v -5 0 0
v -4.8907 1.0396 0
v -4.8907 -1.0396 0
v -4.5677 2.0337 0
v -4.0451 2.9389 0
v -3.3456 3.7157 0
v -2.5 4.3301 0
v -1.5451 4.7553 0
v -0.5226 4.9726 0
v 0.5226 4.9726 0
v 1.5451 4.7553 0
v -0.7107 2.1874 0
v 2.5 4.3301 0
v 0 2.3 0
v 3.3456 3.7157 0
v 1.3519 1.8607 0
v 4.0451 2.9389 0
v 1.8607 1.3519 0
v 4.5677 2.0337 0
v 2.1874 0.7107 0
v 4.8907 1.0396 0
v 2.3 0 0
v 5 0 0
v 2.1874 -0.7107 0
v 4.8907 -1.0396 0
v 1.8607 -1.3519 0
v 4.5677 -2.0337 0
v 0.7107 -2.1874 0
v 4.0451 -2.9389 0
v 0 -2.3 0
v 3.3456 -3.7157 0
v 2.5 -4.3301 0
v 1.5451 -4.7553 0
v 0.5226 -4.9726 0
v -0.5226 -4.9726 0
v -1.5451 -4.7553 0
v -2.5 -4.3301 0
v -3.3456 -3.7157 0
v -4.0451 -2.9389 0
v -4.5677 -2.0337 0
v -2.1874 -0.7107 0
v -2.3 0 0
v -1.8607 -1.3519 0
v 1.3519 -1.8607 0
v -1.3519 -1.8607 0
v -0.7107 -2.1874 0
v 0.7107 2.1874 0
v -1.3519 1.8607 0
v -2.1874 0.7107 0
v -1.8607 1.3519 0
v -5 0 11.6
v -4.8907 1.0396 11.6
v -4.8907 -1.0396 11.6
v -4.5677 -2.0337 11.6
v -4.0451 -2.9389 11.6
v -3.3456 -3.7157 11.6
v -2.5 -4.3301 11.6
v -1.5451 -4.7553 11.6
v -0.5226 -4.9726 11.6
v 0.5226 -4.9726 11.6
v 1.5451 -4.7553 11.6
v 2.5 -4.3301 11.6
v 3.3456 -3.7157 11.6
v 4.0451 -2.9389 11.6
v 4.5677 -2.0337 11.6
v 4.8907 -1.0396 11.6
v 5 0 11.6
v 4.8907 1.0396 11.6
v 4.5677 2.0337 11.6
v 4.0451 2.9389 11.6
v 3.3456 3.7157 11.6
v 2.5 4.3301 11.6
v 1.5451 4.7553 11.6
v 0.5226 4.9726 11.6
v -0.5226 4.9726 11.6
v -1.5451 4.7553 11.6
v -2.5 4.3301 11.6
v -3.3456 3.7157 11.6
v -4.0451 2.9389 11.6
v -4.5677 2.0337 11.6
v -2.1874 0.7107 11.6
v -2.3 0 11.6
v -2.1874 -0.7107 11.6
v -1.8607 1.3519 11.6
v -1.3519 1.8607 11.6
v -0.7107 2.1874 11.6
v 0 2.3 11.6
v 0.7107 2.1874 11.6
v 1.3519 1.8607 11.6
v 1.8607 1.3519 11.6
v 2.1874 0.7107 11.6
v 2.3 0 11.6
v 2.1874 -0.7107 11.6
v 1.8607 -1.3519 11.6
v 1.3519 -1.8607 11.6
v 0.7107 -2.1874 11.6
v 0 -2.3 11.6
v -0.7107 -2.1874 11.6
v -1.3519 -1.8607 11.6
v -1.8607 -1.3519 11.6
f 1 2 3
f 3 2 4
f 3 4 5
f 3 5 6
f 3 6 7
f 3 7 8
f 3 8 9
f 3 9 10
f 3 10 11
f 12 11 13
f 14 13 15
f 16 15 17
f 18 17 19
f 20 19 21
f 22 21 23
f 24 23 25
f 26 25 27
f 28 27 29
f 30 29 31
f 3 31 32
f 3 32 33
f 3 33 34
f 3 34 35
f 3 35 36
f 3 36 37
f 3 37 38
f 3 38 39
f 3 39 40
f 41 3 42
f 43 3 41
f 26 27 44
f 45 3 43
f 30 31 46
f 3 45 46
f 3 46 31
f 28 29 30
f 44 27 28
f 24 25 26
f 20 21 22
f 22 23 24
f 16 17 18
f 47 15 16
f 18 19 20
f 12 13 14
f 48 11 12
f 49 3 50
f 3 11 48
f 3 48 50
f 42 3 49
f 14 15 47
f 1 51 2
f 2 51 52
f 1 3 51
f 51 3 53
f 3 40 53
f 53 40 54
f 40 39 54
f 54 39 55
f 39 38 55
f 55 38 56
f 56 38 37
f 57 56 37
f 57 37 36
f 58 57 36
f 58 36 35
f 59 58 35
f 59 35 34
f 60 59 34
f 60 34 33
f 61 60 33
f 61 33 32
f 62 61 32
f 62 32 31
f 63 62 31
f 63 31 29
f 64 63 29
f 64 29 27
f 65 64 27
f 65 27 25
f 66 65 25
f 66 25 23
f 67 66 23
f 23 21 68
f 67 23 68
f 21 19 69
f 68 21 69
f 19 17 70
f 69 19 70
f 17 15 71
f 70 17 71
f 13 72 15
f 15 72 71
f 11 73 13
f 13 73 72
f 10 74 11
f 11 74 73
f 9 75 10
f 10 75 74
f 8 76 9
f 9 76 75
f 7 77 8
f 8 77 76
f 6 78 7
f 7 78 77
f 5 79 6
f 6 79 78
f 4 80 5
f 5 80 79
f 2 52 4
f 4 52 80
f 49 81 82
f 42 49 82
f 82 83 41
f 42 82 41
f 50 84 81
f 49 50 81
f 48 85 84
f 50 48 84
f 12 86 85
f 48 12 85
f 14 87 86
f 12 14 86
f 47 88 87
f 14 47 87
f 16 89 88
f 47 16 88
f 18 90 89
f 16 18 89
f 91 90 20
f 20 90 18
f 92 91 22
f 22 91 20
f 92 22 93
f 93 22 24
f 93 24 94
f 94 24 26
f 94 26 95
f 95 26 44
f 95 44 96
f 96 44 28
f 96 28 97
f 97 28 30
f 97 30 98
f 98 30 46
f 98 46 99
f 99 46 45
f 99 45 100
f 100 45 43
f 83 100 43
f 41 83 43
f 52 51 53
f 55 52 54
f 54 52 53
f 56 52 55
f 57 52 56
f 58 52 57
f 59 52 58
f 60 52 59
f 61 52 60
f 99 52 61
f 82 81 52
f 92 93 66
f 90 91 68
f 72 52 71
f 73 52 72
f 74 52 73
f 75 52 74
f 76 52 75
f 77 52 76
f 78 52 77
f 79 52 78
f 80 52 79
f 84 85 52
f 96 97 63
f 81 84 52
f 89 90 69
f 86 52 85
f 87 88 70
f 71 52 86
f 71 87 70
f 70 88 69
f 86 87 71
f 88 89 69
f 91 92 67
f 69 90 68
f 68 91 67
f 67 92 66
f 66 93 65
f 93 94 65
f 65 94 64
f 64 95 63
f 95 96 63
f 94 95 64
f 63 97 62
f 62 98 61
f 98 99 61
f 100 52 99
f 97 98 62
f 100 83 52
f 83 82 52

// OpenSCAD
// file: library.scad
//rounded cube Functions from: http://www.thingiverse.com/thing:38069


module cube_fillet(size,radius=-1,vertical,top,bottom,center=false,$fn=0){
    if (center) {
        cube_fillet_inside(size, radius, vertical, top, bottom, $fn=$fn);
    } else {
        translate([size[0]/2, size[1]/2, size[2]/2])
            cube_fillet_inside(size, radius, vertical, top, bottom, $fn=$fn);
    }
}
module fillet(radius, height=100, $fn=60) {  
    //this creates negative of fillet,
    //i.e. thing to be substracted from object
    translate([-radius, -radius, -height/2-0.01])
        difference() {
            cube([radius*2, radius*2, height+0.02]);
            cylinder(r=radius, h=height+0.02, $fn=$fn);
        }
}

module cube_negative_fillet(size,radius=-1,vertical, top,bottom,$fn=0){
    j=[1,0,1,0];

    for (i=[0:3]) {
        if (radius > -1) {
            rotate([0, 0, 90*i])
                translate([size[1-j[i]]/2, size[j[i]]/2, 0])
                    fillet(radius, size[2], $fn=$fn);
        } else {
            rotate([0, 0, 90*i])
                translate([size[1-j[i]]/2, size[j[i]]/2, 0])
                    fillet(vertical[i], size[2], $fn=$fn);

        }
        rotate([90*i, -90, 0])
            translate([size[2]/2, size[j[i]]/2, 0 ])
                fillet(top[i], size[1-j[i]], $fn=$fn);
        rotate([90*(4-i), 90, 0])
            translate([size[2]/2, size[j[i]]/2, 0])
                fillet(bottom[i], size[1-j[i]], $fn=$fn);
    }
}

module cube_fillet_inside(size,radius=-1,vertical,top,bottom,$fn=0){

    if (radius == 0) {
        cube(size, center=true);
    } else {
        difference() {
            cube(size, center=true);
            cube_negative_fillet(size, radius, vertical, top, bottom, $fn=$fn);
        }
    }
}
// file: dimensions.scad
// Dimensions
// Author: sdavi


LM8UU = [8, 15, 24];//rod diameter,outter diameter, length
LM12UU = [12, 21, 30];
LM12LUU = [12, 21, 57];
LM12UUx2 = [LM12UU[0], LM12UU[1], LM12UU[2]*2];

BEARING_624 = [4,13,5]; //inner diameter(hole), outter diameter, thickness (http://reprap.org/wiki/Ball_bearing)
BEARING_2x624 = [4, 13, 10]; // 2 624 bearings together, good size for GT2

BEARING_6300 = [10,35,11]; //inner diameter, outer diameter, thickness

vslot_wheel = [23.89,10.23];	//23.89 & 10.23
vslot_wheel_hole = 5+0.5;
vslot_wheel_eccentric = 7.2+0.5; //hole for eccentric spacer
vslot_wheel_spacer_length = 6.35;


t_nut_length = 15+1; //hole in center 1mm cleanance incase hole isnt actually center




GT2_belt_width = 6;
GT2_belt_pitch = 2;
GT2_belt_thickness = 1.38;
GT2_belt_tooth_height = 0.75;  
GT2_belt_tooth_ratio = 0.5;



GT2_pulley_geared_diameter=12.2;//measured from top of tooth to top of tooth opp side// 12.2 is for the 20 tooth pulley

//from metric (prusa i3)
m4_diameter = 4.6;
m4_nut_diameter = 7.6;
m4_nut_diameter_horizontal = 8.15;

m3_diameter = 3.6;
m3_nut_diameter = 5.3;
m3_nut_diameter_horizontal = 6.8;
m3_washer_diameter = 6.9;
//end i3 variables

m5_diameter = 5.5;

//Hex Head M3x30: Head 5.5mm flat to flat, 2.12mm thick
m3_hex_head_diameter = 5.5*2/sqrt(3) + 0.2;

M4 = m4_diameter;
M3 = m3_diameter;
M5 = m5_diameter;
m4_washer_thickness = 0.8; //flat and penny washers
m4_washer_diameter = 9.6;

nema17_holes = 31;// mm between screws
nema17_width = 42; //width
nema17_height = 48;
// file: configuration.scad
// Configuration
// Author: sdavi


include <dimensions.scad>
use <library.scad>


x_rod_distance = 45;

y_bearing = LM8UU;
x_bearing = LM8UU;
//z_bearing = LM12UUx2;
z_bearing = LM12LUU;
belt_bearing = BEARING_2x624;


end_belt_bearing_distance = 25;// distance between 2 bearings on y-ends
belt_clearance = 9.5; //space for belts
x_belt_clearance = 5; //spacing between x-axis vslot and belt

frame_screw = M5; //m5 screws for v/tslot

// calculated vars


//y bearing block
y_bearing_block_length = 2*y_bearing[2] + M3*2 + 5;
//y_bearing_block_width = y_bearing[1]+5;
y_bearing_block_width = 20; //vslot frame width

y_bearing_block_height = 6+y_bearing[1]/2;

//xy_bearing_distance = y_bearing_block_width/2+belt_clearance+belt_bearing[1]/2; //distance between center of y-bearing to center of x-belt bearing 
xy_bearing_distance = vslot_wheel[1]/2+vslot_wheel_spacer_length+belt_clearance+belt_bearing[1]/2; //distance between center of v_slot to center of x-belt bearing 




//min height for belt bearings
min_beltbearing_height = max(((belt_bearing[2]+m4_washer_thickness*2) * 2), y_bearing_block_height);
// main file
// Belt Bearing Spacer
// Author: sdavi


include <configuration.scad>


bearing_height = (belt_bearing[2]+m4_washer_thickness*2);

height = min_beltbearing_height-bearing_height;

echo ("Spacer height:", height);

difference(){
	cylinder(d=belt_bearing[1]-3, h=height,$fn=30);
	translate([0,0,-0.1])cylinder(d=belt_bearing[0]+0.6, h=height+0.2,$fn=20);
}
